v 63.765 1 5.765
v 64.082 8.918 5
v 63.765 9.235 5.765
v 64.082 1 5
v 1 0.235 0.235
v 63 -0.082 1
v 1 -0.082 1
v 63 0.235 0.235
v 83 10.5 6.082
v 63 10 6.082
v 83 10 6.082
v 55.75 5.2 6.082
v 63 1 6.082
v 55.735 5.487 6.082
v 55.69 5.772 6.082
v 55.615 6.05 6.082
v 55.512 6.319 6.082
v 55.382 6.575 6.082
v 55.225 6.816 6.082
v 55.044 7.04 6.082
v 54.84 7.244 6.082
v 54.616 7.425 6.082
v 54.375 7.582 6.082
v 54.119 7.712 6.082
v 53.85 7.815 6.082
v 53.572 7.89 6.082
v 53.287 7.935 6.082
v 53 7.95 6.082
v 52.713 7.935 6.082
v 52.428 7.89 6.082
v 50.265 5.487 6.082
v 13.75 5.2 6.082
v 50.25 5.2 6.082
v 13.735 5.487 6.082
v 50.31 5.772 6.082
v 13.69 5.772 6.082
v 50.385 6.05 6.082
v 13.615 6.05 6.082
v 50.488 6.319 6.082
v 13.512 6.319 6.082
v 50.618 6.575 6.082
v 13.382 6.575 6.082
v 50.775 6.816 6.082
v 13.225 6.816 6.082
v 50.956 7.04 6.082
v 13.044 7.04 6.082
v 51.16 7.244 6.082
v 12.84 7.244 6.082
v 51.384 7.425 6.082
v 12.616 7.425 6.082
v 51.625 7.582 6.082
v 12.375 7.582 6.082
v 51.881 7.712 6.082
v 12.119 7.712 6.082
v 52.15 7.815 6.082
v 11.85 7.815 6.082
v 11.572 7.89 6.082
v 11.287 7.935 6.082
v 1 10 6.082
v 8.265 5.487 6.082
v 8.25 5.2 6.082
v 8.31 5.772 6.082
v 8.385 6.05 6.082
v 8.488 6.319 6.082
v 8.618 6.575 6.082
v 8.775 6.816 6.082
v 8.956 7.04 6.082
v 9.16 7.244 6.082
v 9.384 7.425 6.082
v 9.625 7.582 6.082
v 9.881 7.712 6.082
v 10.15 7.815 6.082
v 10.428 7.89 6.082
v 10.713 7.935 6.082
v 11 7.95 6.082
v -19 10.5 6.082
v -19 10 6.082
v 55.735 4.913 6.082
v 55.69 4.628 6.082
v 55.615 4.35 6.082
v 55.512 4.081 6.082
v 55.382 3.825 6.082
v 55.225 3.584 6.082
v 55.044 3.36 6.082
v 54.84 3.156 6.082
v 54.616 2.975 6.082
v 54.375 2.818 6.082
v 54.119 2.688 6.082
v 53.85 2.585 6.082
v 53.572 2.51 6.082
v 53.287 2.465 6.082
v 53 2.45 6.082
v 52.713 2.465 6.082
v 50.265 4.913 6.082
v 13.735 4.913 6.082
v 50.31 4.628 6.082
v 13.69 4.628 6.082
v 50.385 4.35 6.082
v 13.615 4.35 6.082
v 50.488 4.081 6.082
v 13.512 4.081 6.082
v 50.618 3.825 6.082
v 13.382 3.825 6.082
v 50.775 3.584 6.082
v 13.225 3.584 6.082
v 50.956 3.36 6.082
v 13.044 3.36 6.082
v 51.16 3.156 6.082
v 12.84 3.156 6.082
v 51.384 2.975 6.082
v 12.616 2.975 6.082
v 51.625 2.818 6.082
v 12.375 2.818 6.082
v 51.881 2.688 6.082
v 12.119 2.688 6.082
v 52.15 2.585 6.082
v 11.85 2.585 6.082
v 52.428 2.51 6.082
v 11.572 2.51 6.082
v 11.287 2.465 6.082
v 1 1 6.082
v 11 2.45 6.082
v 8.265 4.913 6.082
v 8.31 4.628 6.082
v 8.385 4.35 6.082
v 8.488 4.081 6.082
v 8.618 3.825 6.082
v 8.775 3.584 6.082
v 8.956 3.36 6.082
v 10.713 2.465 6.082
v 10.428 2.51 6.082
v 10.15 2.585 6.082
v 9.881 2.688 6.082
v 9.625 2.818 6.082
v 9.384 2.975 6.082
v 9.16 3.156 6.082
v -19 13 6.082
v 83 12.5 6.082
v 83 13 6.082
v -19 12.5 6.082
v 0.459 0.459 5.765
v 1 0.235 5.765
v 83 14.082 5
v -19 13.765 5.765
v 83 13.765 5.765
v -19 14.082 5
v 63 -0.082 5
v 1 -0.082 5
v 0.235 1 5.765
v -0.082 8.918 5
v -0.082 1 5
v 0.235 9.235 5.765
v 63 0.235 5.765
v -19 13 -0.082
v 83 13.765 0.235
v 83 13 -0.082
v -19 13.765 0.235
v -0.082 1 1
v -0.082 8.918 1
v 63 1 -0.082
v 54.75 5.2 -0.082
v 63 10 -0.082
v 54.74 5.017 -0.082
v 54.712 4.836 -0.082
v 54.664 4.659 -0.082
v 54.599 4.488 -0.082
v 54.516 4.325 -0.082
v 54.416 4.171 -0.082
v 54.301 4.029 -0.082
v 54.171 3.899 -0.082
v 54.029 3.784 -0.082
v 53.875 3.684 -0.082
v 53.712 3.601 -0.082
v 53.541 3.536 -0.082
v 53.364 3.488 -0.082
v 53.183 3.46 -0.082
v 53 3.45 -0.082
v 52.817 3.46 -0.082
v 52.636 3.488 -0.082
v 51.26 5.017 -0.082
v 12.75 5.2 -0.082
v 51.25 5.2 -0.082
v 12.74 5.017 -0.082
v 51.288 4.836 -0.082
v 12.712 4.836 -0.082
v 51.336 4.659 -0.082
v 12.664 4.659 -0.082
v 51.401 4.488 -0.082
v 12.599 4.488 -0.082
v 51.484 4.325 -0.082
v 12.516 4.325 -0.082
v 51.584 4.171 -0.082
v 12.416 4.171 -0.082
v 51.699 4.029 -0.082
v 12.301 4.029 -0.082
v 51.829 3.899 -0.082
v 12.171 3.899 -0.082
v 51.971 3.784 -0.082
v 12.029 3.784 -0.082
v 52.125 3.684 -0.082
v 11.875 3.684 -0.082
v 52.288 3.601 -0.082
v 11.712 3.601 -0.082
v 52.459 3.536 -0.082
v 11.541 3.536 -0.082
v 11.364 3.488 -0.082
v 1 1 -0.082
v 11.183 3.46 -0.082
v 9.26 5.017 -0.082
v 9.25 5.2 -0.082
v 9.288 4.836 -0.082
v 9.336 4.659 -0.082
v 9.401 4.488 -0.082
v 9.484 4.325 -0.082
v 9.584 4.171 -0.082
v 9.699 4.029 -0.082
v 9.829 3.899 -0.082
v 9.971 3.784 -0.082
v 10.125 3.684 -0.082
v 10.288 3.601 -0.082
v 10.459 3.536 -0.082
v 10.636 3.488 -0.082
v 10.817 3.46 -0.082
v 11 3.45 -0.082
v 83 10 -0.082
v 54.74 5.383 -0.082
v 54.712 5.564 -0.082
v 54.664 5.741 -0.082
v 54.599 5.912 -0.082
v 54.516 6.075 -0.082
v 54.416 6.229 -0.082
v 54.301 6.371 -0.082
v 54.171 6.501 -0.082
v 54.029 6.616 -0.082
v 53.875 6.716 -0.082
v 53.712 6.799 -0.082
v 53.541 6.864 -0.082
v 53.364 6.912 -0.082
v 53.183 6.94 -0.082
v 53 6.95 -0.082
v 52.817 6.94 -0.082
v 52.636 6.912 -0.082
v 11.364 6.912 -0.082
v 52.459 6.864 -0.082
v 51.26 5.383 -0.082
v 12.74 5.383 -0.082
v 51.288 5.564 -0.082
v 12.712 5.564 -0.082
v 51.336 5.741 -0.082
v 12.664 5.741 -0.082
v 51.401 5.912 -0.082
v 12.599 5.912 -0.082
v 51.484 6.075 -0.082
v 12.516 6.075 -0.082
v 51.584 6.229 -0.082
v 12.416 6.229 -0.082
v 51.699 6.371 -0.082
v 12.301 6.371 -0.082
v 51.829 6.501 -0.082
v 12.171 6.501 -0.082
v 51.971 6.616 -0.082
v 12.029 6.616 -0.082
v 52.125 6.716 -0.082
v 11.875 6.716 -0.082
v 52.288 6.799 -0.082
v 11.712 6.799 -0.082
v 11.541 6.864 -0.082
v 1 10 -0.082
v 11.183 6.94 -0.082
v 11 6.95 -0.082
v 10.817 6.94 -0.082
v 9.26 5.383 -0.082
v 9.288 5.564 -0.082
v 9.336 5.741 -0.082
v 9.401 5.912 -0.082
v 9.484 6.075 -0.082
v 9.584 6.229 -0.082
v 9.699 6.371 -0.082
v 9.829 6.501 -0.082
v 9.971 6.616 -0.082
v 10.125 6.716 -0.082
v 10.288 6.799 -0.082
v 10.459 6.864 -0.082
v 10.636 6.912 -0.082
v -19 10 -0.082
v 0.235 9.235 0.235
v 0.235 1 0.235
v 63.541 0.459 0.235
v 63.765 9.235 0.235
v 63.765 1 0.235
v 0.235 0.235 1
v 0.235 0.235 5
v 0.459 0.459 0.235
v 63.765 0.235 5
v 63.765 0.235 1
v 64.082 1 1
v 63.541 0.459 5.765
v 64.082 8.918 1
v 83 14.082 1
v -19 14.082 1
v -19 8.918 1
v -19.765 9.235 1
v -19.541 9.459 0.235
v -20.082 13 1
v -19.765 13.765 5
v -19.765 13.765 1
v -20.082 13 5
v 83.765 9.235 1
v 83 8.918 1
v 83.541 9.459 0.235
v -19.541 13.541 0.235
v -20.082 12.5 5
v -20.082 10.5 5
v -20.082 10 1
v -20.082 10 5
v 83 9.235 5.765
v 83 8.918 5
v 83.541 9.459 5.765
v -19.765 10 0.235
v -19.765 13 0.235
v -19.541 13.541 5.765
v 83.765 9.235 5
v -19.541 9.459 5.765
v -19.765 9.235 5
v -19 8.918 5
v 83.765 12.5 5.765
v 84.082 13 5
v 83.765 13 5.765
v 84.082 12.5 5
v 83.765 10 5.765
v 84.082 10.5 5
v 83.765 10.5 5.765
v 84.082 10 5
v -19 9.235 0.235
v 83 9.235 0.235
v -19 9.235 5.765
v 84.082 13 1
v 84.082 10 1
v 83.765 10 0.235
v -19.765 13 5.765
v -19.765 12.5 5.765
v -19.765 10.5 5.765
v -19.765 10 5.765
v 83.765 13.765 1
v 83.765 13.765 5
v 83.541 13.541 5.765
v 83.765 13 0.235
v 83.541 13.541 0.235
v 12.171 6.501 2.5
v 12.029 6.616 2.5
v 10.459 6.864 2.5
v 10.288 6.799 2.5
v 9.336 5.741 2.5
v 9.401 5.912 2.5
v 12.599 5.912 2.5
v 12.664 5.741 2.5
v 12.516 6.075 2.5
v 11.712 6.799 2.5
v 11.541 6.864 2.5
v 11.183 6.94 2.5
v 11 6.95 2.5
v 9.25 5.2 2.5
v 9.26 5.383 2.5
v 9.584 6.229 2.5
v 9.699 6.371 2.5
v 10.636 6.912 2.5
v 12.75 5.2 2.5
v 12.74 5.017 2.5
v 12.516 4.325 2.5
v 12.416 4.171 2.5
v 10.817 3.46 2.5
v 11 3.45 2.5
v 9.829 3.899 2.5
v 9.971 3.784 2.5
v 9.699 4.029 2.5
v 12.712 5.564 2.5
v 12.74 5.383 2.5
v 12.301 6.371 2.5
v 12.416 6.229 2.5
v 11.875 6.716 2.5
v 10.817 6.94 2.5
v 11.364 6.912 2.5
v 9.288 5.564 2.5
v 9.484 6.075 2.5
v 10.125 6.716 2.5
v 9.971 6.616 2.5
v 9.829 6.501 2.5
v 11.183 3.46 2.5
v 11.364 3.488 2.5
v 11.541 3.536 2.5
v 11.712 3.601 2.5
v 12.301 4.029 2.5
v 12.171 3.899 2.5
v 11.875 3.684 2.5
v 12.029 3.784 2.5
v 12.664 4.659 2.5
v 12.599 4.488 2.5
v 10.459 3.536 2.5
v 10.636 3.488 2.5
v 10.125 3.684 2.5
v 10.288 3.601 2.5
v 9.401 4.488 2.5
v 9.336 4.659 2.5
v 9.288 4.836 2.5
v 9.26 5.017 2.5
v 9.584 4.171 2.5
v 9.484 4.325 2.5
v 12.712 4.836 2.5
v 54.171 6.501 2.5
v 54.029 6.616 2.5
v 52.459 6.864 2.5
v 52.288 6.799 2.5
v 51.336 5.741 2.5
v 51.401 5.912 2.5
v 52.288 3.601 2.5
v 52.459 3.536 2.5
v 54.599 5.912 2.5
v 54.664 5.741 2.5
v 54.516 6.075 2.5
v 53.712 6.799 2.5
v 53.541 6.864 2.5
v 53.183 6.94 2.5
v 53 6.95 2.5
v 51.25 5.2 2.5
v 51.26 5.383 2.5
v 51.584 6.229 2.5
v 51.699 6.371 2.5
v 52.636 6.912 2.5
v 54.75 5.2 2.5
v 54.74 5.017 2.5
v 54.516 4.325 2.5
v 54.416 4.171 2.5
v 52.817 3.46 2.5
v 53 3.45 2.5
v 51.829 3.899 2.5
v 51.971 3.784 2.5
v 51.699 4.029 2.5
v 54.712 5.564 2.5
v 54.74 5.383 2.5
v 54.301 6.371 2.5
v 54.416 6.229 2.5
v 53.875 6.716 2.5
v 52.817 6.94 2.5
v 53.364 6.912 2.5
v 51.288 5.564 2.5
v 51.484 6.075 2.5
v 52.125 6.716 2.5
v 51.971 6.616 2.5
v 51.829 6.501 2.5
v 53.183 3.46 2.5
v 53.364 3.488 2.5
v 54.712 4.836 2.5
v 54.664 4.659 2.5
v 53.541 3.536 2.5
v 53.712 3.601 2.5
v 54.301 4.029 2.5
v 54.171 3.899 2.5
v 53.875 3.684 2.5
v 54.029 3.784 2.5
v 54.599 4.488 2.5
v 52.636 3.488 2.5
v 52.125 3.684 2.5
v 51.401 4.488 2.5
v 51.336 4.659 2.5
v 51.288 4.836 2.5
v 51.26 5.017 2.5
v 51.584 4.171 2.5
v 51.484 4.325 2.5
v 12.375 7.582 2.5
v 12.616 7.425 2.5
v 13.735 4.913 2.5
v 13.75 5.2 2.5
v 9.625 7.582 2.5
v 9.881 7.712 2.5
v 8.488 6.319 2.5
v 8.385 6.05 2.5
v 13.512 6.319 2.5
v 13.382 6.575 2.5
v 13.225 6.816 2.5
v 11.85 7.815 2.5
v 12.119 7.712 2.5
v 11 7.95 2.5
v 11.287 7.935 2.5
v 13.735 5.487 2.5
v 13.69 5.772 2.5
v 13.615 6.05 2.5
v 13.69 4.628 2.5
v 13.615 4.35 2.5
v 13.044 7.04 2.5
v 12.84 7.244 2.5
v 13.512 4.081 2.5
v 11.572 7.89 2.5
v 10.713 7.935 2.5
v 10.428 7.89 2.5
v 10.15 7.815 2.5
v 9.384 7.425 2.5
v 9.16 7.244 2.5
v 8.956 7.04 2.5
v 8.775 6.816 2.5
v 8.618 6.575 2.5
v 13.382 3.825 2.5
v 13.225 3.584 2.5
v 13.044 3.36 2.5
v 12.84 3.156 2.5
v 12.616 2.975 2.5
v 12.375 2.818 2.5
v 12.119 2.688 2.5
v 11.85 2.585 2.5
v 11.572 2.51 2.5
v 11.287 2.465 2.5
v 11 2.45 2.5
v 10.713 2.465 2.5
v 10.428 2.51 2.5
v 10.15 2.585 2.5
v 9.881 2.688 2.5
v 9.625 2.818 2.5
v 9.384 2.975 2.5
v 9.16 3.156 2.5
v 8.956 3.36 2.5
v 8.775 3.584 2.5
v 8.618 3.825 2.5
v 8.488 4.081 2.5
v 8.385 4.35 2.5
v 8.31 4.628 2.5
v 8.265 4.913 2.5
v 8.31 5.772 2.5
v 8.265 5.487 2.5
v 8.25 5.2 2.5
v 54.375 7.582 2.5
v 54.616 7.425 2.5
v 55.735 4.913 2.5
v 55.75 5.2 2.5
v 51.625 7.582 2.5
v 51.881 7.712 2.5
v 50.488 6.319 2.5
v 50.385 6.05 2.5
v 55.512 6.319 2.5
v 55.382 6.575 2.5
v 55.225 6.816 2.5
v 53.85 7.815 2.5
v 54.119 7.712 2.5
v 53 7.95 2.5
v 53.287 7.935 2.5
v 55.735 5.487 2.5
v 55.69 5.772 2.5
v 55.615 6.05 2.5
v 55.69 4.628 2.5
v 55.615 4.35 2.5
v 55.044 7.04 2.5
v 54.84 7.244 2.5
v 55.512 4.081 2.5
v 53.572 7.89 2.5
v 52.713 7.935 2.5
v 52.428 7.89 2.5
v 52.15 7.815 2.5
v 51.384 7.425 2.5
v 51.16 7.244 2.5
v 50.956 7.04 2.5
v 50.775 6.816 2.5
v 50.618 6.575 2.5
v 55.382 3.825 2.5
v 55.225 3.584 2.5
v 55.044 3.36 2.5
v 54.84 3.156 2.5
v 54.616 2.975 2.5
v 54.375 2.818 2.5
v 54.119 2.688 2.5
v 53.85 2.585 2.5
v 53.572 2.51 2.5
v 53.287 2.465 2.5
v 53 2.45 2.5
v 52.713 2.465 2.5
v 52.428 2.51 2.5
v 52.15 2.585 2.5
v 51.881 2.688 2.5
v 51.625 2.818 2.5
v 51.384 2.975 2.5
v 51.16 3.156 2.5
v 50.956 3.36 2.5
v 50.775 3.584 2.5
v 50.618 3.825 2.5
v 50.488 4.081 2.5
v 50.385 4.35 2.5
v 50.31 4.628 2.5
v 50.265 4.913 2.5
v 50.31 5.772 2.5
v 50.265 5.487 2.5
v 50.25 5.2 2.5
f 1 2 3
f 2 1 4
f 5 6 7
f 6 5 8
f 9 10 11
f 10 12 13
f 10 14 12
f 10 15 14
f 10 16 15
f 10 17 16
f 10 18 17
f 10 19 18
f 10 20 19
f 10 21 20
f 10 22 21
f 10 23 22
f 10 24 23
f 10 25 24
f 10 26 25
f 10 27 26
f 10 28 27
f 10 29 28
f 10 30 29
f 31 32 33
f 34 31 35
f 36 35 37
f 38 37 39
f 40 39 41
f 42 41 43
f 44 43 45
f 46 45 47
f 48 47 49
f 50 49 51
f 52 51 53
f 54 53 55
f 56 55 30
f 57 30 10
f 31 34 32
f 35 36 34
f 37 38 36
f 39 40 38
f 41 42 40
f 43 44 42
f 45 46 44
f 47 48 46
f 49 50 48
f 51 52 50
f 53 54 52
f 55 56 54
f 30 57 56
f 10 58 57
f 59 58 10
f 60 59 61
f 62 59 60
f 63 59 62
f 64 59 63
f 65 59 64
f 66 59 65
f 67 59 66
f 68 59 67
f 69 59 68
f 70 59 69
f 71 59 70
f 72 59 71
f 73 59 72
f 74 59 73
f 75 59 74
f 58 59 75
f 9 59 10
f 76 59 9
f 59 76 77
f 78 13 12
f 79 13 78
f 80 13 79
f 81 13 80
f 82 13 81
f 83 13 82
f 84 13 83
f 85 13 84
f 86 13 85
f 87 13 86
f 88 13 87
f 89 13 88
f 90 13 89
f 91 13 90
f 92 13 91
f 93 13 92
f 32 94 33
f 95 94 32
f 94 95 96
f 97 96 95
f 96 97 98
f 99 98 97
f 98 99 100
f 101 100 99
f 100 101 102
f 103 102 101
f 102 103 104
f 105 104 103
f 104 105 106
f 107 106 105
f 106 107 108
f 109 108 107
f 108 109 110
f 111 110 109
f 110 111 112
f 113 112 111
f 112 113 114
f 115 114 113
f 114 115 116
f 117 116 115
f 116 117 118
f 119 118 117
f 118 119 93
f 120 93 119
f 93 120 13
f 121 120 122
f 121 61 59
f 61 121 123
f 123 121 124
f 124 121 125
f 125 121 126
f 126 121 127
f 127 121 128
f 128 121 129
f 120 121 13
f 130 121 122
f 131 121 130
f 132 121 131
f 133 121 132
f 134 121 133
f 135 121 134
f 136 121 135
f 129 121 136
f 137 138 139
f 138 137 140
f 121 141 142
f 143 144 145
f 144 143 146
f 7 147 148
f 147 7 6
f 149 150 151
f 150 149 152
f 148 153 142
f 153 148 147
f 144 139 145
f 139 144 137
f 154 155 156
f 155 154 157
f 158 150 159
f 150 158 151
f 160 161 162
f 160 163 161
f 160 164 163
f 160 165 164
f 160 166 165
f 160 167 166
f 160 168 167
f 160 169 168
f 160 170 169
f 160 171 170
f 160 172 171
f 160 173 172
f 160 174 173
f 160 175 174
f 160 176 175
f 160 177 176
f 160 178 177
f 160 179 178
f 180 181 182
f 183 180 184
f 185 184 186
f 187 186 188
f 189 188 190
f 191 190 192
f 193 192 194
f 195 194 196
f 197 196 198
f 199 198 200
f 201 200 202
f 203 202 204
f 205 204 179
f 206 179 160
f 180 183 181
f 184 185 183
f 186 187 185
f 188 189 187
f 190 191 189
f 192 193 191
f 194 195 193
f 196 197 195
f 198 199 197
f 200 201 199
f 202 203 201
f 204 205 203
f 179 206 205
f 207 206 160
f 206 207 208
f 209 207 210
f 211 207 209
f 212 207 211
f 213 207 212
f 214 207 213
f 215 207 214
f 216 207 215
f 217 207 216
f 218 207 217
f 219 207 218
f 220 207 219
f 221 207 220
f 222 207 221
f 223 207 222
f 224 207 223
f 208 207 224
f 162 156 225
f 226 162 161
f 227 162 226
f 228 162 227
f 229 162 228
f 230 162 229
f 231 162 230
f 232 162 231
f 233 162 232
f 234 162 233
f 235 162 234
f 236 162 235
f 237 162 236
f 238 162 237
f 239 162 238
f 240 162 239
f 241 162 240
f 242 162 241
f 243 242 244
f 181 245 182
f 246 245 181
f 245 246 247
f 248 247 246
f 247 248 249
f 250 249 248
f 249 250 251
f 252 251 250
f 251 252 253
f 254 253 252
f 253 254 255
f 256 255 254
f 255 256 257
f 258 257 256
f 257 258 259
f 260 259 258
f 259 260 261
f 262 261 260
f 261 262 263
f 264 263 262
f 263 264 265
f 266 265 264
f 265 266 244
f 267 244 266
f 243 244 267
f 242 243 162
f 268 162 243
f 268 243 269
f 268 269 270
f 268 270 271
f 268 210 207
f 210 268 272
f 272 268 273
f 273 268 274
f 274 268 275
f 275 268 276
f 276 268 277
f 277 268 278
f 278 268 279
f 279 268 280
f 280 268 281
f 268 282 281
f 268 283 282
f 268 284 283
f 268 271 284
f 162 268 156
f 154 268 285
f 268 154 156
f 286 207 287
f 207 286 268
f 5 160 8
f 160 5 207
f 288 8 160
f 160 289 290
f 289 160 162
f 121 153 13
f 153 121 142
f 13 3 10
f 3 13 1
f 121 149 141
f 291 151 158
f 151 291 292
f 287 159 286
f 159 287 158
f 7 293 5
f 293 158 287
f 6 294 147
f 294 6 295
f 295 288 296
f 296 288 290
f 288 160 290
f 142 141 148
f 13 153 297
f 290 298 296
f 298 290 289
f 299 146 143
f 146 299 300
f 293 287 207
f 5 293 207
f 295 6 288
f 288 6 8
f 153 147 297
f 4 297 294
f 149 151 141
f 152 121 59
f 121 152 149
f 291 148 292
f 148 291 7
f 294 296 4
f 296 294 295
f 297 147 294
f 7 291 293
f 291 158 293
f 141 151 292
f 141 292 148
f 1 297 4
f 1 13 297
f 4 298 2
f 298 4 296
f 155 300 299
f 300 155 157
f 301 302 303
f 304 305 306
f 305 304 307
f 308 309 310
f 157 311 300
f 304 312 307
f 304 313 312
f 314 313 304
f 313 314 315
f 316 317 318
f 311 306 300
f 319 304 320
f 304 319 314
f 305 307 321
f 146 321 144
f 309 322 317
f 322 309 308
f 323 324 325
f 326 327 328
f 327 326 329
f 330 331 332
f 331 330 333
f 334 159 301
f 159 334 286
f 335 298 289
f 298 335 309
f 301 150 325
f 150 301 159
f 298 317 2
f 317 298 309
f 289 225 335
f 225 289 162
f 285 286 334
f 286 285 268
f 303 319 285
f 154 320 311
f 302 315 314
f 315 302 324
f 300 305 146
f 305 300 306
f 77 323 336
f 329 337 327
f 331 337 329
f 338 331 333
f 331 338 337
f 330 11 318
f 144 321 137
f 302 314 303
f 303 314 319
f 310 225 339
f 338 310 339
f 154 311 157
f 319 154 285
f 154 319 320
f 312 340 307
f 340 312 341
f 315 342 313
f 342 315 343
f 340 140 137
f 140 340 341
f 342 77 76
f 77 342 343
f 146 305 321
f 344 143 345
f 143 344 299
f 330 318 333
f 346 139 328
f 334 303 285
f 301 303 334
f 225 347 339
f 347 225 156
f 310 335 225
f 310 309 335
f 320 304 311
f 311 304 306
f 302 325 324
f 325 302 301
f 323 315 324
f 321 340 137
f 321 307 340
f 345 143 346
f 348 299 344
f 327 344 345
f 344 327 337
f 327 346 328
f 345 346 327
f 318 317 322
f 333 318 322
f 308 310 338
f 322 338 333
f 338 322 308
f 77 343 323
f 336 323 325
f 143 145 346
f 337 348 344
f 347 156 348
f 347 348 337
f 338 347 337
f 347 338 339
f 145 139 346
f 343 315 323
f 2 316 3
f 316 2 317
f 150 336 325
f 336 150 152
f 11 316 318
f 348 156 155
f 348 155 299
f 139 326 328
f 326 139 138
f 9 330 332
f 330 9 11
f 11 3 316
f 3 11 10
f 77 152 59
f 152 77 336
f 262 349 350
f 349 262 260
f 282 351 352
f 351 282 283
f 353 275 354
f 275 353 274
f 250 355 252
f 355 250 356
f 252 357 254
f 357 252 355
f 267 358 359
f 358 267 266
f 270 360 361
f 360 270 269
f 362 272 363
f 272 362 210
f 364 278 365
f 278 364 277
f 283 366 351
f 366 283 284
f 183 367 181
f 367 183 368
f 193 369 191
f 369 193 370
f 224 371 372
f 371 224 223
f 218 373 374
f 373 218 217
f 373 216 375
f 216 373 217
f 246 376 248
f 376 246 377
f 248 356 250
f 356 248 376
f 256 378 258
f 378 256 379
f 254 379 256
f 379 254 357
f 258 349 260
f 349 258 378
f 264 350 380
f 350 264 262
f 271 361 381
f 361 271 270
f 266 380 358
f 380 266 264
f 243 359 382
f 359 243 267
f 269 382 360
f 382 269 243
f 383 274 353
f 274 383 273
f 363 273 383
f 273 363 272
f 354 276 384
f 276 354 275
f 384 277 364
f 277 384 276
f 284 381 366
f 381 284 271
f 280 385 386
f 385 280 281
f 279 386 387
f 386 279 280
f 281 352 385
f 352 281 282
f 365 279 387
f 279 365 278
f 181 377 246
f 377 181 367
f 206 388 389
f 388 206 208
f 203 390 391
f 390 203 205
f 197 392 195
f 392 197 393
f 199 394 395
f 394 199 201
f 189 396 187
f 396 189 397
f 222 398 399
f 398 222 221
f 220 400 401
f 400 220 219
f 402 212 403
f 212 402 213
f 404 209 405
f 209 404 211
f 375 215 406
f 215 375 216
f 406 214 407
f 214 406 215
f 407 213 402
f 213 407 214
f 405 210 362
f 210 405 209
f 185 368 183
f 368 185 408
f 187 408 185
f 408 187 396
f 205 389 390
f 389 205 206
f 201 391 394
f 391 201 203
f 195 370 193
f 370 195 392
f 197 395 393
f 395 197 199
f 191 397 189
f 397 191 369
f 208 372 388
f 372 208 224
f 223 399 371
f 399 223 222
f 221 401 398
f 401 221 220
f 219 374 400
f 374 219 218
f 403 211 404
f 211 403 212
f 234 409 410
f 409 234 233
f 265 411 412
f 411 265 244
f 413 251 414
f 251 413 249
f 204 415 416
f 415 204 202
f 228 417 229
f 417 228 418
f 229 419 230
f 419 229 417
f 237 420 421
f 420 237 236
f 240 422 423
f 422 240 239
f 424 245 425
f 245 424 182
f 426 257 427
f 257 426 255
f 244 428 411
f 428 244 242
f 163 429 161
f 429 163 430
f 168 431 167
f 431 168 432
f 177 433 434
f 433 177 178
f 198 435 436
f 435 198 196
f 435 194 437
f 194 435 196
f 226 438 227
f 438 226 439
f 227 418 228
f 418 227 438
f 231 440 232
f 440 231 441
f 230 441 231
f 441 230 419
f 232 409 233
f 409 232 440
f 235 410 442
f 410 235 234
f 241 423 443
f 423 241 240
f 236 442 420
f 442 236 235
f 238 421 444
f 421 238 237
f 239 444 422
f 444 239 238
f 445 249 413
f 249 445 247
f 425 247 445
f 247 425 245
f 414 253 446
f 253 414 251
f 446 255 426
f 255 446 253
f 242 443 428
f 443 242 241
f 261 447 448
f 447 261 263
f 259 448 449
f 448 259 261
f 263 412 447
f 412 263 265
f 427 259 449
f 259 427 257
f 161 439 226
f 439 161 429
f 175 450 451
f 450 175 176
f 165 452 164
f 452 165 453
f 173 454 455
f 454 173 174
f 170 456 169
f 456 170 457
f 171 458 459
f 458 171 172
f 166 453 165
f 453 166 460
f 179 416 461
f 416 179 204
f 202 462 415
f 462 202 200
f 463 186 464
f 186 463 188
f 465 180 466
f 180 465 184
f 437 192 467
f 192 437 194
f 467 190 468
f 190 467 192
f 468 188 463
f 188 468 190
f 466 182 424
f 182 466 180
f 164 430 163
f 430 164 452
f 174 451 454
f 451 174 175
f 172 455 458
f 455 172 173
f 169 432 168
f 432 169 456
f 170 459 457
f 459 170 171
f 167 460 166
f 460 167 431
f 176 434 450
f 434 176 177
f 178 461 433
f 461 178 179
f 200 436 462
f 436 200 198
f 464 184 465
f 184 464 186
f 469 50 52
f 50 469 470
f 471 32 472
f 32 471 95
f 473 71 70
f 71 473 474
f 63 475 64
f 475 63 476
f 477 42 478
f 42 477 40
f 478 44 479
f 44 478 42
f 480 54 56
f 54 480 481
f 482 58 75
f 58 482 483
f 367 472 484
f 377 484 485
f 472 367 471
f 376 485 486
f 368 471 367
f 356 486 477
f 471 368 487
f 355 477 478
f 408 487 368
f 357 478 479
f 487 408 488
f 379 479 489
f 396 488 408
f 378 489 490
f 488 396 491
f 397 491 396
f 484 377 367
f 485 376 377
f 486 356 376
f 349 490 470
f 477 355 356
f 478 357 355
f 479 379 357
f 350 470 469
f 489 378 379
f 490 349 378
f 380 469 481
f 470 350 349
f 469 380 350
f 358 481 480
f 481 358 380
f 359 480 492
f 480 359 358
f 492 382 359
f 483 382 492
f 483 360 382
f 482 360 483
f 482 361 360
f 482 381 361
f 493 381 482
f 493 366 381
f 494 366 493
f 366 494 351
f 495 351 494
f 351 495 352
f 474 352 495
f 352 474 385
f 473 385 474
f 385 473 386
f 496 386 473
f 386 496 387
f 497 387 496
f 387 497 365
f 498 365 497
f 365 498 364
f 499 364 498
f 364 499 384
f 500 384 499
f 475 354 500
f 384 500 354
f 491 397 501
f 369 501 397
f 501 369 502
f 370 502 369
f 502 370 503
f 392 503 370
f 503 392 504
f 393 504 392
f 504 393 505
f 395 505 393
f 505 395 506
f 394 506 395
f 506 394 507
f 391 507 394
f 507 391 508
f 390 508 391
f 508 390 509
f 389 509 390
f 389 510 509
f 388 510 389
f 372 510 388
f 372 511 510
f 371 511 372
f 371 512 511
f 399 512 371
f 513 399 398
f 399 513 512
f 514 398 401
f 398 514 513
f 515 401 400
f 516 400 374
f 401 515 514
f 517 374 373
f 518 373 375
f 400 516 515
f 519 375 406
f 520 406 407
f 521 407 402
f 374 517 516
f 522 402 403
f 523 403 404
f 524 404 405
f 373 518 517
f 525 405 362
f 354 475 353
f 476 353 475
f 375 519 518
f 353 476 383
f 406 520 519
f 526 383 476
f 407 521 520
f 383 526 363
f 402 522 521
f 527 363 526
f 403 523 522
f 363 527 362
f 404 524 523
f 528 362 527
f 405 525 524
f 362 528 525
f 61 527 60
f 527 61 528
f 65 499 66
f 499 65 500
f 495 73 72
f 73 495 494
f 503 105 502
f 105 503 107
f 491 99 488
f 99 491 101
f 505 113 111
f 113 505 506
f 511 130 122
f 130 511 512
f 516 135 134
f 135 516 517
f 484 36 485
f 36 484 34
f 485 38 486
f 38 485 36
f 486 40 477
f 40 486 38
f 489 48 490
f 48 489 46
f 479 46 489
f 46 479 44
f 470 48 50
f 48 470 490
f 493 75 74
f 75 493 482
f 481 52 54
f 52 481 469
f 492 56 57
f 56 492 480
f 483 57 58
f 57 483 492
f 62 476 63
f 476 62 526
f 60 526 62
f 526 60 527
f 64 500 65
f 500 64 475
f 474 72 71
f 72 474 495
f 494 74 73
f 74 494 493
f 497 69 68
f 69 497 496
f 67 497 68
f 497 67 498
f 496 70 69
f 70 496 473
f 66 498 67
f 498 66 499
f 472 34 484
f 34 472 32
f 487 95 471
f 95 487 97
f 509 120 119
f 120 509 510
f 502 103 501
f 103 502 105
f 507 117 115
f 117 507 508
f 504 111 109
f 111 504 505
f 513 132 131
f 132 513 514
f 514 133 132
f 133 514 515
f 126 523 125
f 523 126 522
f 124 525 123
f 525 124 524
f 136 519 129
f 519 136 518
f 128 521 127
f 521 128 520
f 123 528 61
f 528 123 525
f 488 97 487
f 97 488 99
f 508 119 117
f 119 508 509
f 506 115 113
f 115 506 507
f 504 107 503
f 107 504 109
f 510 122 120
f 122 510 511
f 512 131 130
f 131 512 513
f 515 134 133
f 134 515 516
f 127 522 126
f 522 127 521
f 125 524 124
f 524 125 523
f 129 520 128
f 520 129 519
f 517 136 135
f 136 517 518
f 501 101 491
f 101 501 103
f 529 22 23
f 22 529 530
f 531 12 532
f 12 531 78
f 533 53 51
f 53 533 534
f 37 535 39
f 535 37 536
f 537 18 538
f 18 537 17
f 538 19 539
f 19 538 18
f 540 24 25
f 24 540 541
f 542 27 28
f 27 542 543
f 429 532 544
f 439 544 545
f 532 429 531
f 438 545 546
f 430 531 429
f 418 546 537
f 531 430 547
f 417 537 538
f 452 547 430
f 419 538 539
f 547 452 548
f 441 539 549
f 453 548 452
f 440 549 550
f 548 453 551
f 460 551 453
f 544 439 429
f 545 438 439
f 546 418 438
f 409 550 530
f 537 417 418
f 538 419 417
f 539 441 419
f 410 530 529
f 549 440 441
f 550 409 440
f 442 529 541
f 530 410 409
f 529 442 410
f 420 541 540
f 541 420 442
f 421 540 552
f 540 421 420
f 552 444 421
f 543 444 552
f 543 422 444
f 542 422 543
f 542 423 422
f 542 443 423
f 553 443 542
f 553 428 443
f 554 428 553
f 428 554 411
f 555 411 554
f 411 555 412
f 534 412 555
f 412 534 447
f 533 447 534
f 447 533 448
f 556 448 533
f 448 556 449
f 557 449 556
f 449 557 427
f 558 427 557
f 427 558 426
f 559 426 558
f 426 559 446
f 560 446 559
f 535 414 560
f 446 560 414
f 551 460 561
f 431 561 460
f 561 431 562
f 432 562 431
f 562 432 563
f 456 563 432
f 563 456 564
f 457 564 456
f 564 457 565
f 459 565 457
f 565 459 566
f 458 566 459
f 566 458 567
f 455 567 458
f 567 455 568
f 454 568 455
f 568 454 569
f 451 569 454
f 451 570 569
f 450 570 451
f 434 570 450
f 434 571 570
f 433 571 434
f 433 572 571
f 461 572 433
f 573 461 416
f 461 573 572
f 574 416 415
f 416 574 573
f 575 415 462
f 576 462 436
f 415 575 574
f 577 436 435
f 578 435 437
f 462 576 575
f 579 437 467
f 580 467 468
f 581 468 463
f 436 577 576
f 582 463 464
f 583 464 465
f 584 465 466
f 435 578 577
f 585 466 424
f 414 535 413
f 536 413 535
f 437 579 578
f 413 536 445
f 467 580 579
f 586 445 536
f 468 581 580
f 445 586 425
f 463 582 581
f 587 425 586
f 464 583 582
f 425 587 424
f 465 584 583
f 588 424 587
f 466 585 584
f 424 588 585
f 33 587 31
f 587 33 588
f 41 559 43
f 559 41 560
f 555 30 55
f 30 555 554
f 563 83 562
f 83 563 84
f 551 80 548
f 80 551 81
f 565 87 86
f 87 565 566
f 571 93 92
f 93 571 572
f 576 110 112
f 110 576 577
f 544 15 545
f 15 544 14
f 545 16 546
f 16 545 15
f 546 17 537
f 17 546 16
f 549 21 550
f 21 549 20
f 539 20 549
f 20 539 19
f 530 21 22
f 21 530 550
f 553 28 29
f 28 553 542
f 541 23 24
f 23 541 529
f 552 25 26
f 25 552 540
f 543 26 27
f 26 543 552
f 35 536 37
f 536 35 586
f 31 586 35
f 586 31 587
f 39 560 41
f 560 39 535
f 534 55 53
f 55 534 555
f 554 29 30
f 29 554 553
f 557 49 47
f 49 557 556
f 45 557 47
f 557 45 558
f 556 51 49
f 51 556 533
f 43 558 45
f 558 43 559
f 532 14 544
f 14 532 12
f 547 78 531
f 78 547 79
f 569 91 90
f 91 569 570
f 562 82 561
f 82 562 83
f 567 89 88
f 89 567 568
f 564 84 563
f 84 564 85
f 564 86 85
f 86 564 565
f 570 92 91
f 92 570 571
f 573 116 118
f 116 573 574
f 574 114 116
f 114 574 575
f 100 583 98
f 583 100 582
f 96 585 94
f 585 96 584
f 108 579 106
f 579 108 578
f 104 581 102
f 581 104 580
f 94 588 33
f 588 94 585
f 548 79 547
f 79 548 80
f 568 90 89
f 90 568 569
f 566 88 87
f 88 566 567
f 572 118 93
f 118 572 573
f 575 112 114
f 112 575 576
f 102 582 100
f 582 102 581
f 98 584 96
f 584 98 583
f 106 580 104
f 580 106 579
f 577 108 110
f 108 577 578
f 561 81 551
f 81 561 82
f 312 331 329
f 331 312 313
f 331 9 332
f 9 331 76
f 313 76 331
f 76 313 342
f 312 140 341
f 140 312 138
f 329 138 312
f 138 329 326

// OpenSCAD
include <BOSL/constants.scad>
use <BOSL/shapes.scad>

fileVersion = "1.1";

jawHeightZ = 6;


difference(){
  jaw();
  slot();
  holes();
  countersinks();
}//difference


module jaw(){
  union(){
    //jaw attachment
    color("skyblue")
     cuboid([64, 14, jawHeightZ], fillet=1, p1=[0,0,0]);
     
    //extension for board
    color("lightskyblue")
     cuboid([64+40, 5, jawHeightZ], fillet=1, p1=[-20,9,0]);
  }//union
}//jaw

module slot() {
  color("tomato")
   translate([-20-1, 10.5, 5])
    cube([104+1+1, 2, 1+1]);
}//slot

module holes() {
  color("orange")
   translate([11, 5.2, -1])
    cylinder(h=jawHeightZ+2, d=3.5, $fn=60); 
  color("orange")
   translate([64-11, 5.2, -1])
    cylinder(h=jawHeightZ+2, d=3.5, $fn=60); 
}//holes

module countersinks() {
  color("orange")
   translate([11, 5.2, 2.5])
    cylinder(h=jawHeightZ, d=5.5, $fn=60); 
  color("orange")
   translate([64-11, 5.2, 2.5])
    cylinder(h=jawHeightZ, d=5.5, $fn=60); 
}//holes
